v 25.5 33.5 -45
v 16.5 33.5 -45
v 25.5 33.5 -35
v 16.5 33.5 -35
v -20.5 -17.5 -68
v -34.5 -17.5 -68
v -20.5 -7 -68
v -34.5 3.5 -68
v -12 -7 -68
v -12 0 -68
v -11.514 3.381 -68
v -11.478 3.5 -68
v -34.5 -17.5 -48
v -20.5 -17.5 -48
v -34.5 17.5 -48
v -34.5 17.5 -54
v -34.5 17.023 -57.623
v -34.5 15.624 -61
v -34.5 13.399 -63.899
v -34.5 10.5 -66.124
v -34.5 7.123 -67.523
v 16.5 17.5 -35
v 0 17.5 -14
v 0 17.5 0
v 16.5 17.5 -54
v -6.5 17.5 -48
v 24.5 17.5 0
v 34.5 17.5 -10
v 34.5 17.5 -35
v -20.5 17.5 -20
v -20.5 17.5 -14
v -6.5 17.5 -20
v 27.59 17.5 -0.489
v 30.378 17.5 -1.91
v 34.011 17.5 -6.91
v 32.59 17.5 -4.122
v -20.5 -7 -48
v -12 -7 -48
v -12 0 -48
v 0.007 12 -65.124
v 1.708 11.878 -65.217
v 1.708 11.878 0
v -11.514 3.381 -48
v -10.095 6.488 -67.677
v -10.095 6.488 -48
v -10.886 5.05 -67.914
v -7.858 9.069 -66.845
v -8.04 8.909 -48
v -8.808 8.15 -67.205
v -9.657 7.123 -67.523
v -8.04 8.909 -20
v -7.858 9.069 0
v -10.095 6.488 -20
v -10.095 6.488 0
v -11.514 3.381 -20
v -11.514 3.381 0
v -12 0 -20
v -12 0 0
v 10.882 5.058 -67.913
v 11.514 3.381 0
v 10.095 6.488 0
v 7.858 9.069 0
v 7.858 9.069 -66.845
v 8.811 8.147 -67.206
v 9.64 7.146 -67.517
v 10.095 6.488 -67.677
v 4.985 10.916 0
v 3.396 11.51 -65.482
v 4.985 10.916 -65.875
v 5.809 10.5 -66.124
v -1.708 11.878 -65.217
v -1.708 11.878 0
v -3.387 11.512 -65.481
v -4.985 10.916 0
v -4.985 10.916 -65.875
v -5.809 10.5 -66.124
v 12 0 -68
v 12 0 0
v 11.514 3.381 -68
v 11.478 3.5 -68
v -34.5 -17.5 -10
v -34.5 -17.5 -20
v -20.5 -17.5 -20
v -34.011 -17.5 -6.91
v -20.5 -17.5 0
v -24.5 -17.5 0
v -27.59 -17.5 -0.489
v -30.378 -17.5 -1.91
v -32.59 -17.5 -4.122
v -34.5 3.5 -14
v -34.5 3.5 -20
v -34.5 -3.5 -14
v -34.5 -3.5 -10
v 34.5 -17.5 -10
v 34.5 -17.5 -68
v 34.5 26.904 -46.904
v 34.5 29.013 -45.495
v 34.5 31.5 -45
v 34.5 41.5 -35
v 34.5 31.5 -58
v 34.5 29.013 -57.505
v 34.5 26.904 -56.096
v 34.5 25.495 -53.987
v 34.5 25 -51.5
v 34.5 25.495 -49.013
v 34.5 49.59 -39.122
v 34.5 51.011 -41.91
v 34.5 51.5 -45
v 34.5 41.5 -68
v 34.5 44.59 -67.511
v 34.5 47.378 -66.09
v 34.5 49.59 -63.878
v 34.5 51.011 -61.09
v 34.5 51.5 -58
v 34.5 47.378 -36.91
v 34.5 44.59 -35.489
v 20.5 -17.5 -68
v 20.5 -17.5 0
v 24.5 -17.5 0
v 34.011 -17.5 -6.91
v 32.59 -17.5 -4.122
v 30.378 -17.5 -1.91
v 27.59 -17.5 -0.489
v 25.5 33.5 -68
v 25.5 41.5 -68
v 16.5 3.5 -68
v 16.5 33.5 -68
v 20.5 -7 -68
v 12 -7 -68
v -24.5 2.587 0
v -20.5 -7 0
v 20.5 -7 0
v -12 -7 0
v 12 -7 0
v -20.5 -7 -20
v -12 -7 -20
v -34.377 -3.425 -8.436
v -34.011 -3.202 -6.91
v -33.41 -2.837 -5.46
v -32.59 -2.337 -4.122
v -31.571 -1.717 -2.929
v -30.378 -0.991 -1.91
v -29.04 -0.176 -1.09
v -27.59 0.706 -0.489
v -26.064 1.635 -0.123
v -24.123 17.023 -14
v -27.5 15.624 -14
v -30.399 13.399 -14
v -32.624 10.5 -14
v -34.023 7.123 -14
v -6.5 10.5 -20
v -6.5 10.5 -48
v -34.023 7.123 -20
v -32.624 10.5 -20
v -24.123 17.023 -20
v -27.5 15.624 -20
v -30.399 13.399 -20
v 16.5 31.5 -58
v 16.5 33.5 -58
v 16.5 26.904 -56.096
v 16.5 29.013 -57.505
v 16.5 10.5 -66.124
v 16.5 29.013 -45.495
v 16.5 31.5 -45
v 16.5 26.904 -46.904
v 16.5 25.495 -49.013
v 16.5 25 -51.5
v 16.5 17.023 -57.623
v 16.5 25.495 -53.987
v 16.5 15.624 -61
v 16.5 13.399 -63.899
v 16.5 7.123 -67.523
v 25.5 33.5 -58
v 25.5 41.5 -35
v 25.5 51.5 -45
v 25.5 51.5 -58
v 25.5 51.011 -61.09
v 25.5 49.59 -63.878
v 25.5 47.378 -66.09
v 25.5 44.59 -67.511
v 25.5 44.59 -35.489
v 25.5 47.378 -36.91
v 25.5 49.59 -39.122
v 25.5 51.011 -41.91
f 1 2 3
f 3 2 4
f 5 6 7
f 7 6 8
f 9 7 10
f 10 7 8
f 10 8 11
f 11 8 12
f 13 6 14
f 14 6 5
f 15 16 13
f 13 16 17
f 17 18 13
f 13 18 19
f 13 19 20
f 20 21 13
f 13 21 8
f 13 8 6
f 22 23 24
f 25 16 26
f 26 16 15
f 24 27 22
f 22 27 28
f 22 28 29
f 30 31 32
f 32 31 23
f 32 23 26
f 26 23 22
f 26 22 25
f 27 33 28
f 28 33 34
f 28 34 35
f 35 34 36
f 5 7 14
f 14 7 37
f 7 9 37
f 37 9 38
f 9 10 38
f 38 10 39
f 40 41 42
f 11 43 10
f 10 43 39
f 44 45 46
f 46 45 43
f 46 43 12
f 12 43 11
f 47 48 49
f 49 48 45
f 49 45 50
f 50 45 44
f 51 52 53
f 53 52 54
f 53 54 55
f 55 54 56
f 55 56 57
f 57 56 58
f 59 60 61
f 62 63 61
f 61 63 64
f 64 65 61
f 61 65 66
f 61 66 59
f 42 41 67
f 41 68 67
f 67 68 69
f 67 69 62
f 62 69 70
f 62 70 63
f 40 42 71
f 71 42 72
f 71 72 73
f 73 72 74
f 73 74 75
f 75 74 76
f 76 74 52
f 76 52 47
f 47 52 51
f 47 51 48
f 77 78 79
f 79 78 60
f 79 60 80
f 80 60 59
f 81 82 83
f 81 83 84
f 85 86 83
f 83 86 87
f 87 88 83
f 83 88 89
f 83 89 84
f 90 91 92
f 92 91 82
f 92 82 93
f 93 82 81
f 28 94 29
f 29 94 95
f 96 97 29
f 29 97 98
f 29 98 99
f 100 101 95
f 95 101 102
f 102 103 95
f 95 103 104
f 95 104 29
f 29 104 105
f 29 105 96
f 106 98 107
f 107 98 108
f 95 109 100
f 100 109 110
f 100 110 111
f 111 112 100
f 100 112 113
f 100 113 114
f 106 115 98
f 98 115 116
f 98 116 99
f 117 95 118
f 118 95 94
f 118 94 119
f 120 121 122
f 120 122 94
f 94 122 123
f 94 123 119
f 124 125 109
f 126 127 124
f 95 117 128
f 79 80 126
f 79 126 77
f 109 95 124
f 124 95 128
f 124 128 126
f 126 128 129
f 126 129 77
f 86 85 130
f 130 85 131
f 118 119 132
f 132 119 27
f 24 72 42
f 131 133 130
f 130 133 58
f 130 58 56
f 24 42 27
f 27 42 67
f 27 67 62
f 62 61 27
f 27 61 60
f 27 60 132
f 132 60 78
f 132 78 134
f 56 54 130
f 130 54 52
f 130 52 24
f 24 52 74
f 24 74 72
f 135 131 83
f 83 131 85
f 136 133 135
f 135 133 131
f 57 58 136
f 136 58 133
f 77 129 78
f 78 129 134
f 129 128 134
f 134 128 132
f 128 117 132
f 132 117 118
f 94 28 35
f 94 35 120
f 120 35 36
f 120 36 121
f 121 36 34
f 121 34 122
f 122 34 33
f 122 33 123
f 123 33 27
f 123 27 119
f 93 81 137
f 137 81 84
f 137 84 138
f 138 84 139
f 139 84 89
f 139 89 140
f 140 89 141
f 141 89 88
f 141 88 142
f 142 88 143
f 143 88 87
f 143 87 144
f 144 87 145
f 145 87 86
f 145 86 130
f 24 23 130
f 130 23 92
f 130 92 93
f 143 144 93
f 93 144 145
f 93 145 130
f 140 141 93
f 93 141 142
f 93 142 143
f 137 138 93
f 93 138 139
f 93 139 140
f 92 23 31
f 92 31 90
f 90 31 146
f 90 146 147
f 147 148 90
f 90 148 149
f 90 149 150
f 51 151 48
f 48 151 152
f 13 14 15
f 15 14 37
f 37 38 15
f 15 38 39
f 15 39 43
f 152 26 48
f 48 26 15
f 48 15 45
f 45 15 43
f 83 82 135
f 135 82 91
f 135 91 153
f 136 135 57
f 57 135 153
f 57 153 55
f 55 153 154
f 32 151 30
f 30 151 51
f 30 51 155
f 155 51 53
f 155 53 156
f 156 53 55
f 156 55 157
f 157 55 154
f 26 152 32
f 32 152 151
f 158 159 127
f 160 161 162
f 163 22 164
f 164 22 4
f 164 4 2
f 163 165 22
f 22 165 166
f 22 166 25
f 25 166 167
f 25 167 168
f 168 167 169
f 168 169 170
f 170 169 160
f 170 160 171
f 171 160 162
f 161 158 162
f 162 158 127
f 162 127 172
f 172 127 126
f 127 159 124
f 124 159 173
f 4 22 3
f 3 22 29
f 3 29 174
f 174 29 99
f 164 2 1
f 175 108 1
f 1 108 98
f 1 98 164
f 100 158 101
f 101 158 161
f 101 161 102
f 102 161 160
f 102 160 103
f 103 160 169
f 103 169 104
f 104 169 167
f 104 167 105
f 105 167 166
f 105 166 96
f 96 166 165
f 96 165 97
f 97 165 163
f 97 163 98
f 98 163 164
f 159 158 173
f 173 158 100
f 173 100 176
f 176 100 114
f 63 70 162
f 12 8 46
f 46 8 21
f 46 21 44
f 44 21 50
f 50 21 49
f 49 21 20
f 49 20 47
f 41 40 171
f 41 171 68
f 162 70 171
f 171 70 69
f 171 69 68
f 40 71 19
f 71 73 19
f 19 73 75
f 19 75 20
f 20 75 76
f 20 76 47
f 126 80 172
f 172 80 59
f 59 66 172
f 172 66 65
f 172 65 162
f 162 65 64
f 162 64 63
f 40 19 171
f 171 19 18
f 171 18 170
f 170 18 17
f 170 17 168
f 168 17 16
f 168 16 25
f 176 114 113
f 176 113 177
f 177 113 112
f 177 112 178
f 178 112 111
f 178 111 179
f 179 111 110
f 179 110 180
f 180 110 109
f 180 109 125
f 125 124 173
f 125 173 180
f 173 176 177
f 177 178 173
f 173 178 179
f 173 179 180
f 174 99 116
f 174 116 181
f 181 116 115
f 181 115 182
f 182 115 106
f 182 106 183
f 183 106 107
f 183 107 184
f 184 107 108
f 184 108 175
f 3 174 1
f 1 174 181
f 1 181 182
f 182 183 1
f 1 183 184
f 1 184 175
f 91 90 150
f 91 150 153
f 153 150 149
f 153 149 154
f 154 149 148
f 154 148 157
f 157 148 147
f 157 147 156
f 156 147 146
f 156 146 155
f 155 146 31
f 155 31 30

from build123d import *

# Parameters (mm, degrees)
SKETCH1_W           = 69
SKETCH1_H           = 35
BOSS_EXTRUDE1_DEPTH = 68
CUT_EXTRUDE1_DEPTH  = 79.233624485
FILLET1_R           = 10
CUT_EXTRUDE2_DEPTH  = 14
CUT_EXTRUDE3_DEPTH  = 14
SKETCH6_W           = 18
SKETCH6_H           = 16
BOSS_EXTRUDE2_DEPTH = 33
CUT_EXTRUDE4_DEPTH  = 28
FILLET3_R           = 14
BOSS_EXTRUDE3_DEPTH = 9
FILLET4_R           = 14


with BuildPart() as part:
    # Sketch1 → Boss-Extrude1 (new body)
    with BuildSketch(Plane.XY):
        Rectangle(SKETCH1_W, SKETCH1_H)
    extrude(amount=-BOSS_EXTRUDE1_DEPTH)

    # Sketch2 → Cut-Extrude1 (cut, through all)
    with BuildSketch(Plane.XY):
        with BuildLine():
            Line((-20.5, -17.5), (-20.5, -7))
            Line((-20.5, -7), (-12, -7))
            Line((-12, -7), (-12, 0))
            ThreePointArc((-12, 0), (0, 12), (12, 0))
            Line((12, 0), (12, -7))
            Line((12, -7), (20.5, -7))
            Line((20.5, -7), (20.5, -17.5))
            Line((20.5, -17.5), (-20.5, -17.5))
        make_face()
    extrude(amount=-CUT_EXTRUDE1_DEPTH, mode=Mode.SUBTRACT)

    # Fillet1
    fillet1_edges = [part.edges().sort_by_distance(p)[0] for p in [
        (34.5, 0, 0),
        (-34.5, 0, 0),
    ]]
    fillet(fillet1_edges, radius=FILLET1_R)

    # Sketch4 → Cut-Extrude2 (cut)
    with BuildSketch(Plane.XY):
        Polygon((0, 17.5), (-34.5, -3.5), (-34.5, 17.5), align=None)
    extrude(amount=-CUT_EXTRUDE2_DEPTH, mode=Mode.SUBTRACT)

    # Sketch5 → Cut-Extrude3 (cut, symmetric)
    with BuildSketch(Plane.XY.offset(-34)):
        with BuildLine():
            Line((-34.5, -17.5), (-20.5, -17.5))
            Line((-20.5, -17.5), (-20.5, -10.5))
            Line((-20.5, -10.5), (-11.239870411, -10.5))
            Line((-11.239870411, -10.5), (-11.239870411, 0))
            ThreePointArc((-11.239870411, 0), (-10, 5.760129589), (-6.5, 10.5))
            Line((-6.5, 10.5), (-6.5, 17.5))
            Line((-6.5, 17.5), (-34.5, 17.5))
            Line((-34.5, 17.5), (-34.5, -17.5))
        make_face()
    extrude(amount=CUT_EXTRUDE3_DEPTH, both=True, mode=Mode.SUBTRACT)

    # Sketch6 → Boss-Extrude2 (add)
    with BuildSketch(Plane.XY.offset(-35)):
        with Locations((25.5, 25.5)):
            Rectangle(SKETCH6_W, SKETCH6_H)
    extrude(amount=-BOSS_EXTRUDE2_DEPTH)

    # Sketch7 → Cut-Extrude4 (cut)
    with BuildSketch(Plane.ZY.offset(-16.5)):
        with BuildLine():
            Line((-58, 33.5), (-58, 31.5))
            ThreePointArc((-58, 31.5), (-51.5, 25), (-45, 31.5))
            Line((-45, 31.5), (-45, 33.5))
            Line((-45, 33.5), (-58, 33.5))
        make_face()
    extrude(amount=-CUT_EXTRUDE4_DEPTH, mode=Mode.SUBTRACT)

    # Fillet3
    # the kernel refuses this fillet: 14 mm, written as the material it takes off along each edge
    with BuildSketch(Plane(origin=(-69.5, 17.5, -68), x_dir=(0, -1, 0), z_dir=(1, 0, 0))) as fillet3_piece_1:
        with BuildLine():
            CenterArc((FILLET3_R, -FILLET3_R), FILLET3_R, 90, 90)
            Line((0, -FILLET3_R), (0, 0))
            Line((0, 0), (FILLET3_R, 0))
        make_face()
    extrude(amount=86, mode=Mode.SUBTRACT)

    # Sketch9 → Boss-Extrude3 (add)
    with BuildSketch(Plane(origin=(34.5, 0, 0), x_dir=(0, 0, -1), z_dir=(1, 0, 0))):
        with BuildLine():
            Line((58, 33.5), (58, 51.5))
            ThreePointArc((58, 51.5), (65.071067812, 48.571067812), (68, 41.5))
            Line((68, 41.5), (68, 33.5))
            Line((68, 33.5), (58, 33.5))
        make_face()
        with BuildLine():
            Line((45, 33.5), (45, 51.5))
            ThreePointArc((45, 51.5), (37.928932188, 48.571067812), (35, 41.5))
            Line((35, 41.5), (35, 33.5))
            Line((35, 33.5), (45, 33.5))
        make_face()
    extrude(amount=-BOSS_EXTRUDE3_DEPTH)

    # Fillet4
    fillet4_edges = [part.edges().sort_by_distance(p)[0] for p in [
        (-34.5, 17.5, -17),
    ]]
    fillet(fillet4_edges, radius=FILLET4_R)


solid = part.part
